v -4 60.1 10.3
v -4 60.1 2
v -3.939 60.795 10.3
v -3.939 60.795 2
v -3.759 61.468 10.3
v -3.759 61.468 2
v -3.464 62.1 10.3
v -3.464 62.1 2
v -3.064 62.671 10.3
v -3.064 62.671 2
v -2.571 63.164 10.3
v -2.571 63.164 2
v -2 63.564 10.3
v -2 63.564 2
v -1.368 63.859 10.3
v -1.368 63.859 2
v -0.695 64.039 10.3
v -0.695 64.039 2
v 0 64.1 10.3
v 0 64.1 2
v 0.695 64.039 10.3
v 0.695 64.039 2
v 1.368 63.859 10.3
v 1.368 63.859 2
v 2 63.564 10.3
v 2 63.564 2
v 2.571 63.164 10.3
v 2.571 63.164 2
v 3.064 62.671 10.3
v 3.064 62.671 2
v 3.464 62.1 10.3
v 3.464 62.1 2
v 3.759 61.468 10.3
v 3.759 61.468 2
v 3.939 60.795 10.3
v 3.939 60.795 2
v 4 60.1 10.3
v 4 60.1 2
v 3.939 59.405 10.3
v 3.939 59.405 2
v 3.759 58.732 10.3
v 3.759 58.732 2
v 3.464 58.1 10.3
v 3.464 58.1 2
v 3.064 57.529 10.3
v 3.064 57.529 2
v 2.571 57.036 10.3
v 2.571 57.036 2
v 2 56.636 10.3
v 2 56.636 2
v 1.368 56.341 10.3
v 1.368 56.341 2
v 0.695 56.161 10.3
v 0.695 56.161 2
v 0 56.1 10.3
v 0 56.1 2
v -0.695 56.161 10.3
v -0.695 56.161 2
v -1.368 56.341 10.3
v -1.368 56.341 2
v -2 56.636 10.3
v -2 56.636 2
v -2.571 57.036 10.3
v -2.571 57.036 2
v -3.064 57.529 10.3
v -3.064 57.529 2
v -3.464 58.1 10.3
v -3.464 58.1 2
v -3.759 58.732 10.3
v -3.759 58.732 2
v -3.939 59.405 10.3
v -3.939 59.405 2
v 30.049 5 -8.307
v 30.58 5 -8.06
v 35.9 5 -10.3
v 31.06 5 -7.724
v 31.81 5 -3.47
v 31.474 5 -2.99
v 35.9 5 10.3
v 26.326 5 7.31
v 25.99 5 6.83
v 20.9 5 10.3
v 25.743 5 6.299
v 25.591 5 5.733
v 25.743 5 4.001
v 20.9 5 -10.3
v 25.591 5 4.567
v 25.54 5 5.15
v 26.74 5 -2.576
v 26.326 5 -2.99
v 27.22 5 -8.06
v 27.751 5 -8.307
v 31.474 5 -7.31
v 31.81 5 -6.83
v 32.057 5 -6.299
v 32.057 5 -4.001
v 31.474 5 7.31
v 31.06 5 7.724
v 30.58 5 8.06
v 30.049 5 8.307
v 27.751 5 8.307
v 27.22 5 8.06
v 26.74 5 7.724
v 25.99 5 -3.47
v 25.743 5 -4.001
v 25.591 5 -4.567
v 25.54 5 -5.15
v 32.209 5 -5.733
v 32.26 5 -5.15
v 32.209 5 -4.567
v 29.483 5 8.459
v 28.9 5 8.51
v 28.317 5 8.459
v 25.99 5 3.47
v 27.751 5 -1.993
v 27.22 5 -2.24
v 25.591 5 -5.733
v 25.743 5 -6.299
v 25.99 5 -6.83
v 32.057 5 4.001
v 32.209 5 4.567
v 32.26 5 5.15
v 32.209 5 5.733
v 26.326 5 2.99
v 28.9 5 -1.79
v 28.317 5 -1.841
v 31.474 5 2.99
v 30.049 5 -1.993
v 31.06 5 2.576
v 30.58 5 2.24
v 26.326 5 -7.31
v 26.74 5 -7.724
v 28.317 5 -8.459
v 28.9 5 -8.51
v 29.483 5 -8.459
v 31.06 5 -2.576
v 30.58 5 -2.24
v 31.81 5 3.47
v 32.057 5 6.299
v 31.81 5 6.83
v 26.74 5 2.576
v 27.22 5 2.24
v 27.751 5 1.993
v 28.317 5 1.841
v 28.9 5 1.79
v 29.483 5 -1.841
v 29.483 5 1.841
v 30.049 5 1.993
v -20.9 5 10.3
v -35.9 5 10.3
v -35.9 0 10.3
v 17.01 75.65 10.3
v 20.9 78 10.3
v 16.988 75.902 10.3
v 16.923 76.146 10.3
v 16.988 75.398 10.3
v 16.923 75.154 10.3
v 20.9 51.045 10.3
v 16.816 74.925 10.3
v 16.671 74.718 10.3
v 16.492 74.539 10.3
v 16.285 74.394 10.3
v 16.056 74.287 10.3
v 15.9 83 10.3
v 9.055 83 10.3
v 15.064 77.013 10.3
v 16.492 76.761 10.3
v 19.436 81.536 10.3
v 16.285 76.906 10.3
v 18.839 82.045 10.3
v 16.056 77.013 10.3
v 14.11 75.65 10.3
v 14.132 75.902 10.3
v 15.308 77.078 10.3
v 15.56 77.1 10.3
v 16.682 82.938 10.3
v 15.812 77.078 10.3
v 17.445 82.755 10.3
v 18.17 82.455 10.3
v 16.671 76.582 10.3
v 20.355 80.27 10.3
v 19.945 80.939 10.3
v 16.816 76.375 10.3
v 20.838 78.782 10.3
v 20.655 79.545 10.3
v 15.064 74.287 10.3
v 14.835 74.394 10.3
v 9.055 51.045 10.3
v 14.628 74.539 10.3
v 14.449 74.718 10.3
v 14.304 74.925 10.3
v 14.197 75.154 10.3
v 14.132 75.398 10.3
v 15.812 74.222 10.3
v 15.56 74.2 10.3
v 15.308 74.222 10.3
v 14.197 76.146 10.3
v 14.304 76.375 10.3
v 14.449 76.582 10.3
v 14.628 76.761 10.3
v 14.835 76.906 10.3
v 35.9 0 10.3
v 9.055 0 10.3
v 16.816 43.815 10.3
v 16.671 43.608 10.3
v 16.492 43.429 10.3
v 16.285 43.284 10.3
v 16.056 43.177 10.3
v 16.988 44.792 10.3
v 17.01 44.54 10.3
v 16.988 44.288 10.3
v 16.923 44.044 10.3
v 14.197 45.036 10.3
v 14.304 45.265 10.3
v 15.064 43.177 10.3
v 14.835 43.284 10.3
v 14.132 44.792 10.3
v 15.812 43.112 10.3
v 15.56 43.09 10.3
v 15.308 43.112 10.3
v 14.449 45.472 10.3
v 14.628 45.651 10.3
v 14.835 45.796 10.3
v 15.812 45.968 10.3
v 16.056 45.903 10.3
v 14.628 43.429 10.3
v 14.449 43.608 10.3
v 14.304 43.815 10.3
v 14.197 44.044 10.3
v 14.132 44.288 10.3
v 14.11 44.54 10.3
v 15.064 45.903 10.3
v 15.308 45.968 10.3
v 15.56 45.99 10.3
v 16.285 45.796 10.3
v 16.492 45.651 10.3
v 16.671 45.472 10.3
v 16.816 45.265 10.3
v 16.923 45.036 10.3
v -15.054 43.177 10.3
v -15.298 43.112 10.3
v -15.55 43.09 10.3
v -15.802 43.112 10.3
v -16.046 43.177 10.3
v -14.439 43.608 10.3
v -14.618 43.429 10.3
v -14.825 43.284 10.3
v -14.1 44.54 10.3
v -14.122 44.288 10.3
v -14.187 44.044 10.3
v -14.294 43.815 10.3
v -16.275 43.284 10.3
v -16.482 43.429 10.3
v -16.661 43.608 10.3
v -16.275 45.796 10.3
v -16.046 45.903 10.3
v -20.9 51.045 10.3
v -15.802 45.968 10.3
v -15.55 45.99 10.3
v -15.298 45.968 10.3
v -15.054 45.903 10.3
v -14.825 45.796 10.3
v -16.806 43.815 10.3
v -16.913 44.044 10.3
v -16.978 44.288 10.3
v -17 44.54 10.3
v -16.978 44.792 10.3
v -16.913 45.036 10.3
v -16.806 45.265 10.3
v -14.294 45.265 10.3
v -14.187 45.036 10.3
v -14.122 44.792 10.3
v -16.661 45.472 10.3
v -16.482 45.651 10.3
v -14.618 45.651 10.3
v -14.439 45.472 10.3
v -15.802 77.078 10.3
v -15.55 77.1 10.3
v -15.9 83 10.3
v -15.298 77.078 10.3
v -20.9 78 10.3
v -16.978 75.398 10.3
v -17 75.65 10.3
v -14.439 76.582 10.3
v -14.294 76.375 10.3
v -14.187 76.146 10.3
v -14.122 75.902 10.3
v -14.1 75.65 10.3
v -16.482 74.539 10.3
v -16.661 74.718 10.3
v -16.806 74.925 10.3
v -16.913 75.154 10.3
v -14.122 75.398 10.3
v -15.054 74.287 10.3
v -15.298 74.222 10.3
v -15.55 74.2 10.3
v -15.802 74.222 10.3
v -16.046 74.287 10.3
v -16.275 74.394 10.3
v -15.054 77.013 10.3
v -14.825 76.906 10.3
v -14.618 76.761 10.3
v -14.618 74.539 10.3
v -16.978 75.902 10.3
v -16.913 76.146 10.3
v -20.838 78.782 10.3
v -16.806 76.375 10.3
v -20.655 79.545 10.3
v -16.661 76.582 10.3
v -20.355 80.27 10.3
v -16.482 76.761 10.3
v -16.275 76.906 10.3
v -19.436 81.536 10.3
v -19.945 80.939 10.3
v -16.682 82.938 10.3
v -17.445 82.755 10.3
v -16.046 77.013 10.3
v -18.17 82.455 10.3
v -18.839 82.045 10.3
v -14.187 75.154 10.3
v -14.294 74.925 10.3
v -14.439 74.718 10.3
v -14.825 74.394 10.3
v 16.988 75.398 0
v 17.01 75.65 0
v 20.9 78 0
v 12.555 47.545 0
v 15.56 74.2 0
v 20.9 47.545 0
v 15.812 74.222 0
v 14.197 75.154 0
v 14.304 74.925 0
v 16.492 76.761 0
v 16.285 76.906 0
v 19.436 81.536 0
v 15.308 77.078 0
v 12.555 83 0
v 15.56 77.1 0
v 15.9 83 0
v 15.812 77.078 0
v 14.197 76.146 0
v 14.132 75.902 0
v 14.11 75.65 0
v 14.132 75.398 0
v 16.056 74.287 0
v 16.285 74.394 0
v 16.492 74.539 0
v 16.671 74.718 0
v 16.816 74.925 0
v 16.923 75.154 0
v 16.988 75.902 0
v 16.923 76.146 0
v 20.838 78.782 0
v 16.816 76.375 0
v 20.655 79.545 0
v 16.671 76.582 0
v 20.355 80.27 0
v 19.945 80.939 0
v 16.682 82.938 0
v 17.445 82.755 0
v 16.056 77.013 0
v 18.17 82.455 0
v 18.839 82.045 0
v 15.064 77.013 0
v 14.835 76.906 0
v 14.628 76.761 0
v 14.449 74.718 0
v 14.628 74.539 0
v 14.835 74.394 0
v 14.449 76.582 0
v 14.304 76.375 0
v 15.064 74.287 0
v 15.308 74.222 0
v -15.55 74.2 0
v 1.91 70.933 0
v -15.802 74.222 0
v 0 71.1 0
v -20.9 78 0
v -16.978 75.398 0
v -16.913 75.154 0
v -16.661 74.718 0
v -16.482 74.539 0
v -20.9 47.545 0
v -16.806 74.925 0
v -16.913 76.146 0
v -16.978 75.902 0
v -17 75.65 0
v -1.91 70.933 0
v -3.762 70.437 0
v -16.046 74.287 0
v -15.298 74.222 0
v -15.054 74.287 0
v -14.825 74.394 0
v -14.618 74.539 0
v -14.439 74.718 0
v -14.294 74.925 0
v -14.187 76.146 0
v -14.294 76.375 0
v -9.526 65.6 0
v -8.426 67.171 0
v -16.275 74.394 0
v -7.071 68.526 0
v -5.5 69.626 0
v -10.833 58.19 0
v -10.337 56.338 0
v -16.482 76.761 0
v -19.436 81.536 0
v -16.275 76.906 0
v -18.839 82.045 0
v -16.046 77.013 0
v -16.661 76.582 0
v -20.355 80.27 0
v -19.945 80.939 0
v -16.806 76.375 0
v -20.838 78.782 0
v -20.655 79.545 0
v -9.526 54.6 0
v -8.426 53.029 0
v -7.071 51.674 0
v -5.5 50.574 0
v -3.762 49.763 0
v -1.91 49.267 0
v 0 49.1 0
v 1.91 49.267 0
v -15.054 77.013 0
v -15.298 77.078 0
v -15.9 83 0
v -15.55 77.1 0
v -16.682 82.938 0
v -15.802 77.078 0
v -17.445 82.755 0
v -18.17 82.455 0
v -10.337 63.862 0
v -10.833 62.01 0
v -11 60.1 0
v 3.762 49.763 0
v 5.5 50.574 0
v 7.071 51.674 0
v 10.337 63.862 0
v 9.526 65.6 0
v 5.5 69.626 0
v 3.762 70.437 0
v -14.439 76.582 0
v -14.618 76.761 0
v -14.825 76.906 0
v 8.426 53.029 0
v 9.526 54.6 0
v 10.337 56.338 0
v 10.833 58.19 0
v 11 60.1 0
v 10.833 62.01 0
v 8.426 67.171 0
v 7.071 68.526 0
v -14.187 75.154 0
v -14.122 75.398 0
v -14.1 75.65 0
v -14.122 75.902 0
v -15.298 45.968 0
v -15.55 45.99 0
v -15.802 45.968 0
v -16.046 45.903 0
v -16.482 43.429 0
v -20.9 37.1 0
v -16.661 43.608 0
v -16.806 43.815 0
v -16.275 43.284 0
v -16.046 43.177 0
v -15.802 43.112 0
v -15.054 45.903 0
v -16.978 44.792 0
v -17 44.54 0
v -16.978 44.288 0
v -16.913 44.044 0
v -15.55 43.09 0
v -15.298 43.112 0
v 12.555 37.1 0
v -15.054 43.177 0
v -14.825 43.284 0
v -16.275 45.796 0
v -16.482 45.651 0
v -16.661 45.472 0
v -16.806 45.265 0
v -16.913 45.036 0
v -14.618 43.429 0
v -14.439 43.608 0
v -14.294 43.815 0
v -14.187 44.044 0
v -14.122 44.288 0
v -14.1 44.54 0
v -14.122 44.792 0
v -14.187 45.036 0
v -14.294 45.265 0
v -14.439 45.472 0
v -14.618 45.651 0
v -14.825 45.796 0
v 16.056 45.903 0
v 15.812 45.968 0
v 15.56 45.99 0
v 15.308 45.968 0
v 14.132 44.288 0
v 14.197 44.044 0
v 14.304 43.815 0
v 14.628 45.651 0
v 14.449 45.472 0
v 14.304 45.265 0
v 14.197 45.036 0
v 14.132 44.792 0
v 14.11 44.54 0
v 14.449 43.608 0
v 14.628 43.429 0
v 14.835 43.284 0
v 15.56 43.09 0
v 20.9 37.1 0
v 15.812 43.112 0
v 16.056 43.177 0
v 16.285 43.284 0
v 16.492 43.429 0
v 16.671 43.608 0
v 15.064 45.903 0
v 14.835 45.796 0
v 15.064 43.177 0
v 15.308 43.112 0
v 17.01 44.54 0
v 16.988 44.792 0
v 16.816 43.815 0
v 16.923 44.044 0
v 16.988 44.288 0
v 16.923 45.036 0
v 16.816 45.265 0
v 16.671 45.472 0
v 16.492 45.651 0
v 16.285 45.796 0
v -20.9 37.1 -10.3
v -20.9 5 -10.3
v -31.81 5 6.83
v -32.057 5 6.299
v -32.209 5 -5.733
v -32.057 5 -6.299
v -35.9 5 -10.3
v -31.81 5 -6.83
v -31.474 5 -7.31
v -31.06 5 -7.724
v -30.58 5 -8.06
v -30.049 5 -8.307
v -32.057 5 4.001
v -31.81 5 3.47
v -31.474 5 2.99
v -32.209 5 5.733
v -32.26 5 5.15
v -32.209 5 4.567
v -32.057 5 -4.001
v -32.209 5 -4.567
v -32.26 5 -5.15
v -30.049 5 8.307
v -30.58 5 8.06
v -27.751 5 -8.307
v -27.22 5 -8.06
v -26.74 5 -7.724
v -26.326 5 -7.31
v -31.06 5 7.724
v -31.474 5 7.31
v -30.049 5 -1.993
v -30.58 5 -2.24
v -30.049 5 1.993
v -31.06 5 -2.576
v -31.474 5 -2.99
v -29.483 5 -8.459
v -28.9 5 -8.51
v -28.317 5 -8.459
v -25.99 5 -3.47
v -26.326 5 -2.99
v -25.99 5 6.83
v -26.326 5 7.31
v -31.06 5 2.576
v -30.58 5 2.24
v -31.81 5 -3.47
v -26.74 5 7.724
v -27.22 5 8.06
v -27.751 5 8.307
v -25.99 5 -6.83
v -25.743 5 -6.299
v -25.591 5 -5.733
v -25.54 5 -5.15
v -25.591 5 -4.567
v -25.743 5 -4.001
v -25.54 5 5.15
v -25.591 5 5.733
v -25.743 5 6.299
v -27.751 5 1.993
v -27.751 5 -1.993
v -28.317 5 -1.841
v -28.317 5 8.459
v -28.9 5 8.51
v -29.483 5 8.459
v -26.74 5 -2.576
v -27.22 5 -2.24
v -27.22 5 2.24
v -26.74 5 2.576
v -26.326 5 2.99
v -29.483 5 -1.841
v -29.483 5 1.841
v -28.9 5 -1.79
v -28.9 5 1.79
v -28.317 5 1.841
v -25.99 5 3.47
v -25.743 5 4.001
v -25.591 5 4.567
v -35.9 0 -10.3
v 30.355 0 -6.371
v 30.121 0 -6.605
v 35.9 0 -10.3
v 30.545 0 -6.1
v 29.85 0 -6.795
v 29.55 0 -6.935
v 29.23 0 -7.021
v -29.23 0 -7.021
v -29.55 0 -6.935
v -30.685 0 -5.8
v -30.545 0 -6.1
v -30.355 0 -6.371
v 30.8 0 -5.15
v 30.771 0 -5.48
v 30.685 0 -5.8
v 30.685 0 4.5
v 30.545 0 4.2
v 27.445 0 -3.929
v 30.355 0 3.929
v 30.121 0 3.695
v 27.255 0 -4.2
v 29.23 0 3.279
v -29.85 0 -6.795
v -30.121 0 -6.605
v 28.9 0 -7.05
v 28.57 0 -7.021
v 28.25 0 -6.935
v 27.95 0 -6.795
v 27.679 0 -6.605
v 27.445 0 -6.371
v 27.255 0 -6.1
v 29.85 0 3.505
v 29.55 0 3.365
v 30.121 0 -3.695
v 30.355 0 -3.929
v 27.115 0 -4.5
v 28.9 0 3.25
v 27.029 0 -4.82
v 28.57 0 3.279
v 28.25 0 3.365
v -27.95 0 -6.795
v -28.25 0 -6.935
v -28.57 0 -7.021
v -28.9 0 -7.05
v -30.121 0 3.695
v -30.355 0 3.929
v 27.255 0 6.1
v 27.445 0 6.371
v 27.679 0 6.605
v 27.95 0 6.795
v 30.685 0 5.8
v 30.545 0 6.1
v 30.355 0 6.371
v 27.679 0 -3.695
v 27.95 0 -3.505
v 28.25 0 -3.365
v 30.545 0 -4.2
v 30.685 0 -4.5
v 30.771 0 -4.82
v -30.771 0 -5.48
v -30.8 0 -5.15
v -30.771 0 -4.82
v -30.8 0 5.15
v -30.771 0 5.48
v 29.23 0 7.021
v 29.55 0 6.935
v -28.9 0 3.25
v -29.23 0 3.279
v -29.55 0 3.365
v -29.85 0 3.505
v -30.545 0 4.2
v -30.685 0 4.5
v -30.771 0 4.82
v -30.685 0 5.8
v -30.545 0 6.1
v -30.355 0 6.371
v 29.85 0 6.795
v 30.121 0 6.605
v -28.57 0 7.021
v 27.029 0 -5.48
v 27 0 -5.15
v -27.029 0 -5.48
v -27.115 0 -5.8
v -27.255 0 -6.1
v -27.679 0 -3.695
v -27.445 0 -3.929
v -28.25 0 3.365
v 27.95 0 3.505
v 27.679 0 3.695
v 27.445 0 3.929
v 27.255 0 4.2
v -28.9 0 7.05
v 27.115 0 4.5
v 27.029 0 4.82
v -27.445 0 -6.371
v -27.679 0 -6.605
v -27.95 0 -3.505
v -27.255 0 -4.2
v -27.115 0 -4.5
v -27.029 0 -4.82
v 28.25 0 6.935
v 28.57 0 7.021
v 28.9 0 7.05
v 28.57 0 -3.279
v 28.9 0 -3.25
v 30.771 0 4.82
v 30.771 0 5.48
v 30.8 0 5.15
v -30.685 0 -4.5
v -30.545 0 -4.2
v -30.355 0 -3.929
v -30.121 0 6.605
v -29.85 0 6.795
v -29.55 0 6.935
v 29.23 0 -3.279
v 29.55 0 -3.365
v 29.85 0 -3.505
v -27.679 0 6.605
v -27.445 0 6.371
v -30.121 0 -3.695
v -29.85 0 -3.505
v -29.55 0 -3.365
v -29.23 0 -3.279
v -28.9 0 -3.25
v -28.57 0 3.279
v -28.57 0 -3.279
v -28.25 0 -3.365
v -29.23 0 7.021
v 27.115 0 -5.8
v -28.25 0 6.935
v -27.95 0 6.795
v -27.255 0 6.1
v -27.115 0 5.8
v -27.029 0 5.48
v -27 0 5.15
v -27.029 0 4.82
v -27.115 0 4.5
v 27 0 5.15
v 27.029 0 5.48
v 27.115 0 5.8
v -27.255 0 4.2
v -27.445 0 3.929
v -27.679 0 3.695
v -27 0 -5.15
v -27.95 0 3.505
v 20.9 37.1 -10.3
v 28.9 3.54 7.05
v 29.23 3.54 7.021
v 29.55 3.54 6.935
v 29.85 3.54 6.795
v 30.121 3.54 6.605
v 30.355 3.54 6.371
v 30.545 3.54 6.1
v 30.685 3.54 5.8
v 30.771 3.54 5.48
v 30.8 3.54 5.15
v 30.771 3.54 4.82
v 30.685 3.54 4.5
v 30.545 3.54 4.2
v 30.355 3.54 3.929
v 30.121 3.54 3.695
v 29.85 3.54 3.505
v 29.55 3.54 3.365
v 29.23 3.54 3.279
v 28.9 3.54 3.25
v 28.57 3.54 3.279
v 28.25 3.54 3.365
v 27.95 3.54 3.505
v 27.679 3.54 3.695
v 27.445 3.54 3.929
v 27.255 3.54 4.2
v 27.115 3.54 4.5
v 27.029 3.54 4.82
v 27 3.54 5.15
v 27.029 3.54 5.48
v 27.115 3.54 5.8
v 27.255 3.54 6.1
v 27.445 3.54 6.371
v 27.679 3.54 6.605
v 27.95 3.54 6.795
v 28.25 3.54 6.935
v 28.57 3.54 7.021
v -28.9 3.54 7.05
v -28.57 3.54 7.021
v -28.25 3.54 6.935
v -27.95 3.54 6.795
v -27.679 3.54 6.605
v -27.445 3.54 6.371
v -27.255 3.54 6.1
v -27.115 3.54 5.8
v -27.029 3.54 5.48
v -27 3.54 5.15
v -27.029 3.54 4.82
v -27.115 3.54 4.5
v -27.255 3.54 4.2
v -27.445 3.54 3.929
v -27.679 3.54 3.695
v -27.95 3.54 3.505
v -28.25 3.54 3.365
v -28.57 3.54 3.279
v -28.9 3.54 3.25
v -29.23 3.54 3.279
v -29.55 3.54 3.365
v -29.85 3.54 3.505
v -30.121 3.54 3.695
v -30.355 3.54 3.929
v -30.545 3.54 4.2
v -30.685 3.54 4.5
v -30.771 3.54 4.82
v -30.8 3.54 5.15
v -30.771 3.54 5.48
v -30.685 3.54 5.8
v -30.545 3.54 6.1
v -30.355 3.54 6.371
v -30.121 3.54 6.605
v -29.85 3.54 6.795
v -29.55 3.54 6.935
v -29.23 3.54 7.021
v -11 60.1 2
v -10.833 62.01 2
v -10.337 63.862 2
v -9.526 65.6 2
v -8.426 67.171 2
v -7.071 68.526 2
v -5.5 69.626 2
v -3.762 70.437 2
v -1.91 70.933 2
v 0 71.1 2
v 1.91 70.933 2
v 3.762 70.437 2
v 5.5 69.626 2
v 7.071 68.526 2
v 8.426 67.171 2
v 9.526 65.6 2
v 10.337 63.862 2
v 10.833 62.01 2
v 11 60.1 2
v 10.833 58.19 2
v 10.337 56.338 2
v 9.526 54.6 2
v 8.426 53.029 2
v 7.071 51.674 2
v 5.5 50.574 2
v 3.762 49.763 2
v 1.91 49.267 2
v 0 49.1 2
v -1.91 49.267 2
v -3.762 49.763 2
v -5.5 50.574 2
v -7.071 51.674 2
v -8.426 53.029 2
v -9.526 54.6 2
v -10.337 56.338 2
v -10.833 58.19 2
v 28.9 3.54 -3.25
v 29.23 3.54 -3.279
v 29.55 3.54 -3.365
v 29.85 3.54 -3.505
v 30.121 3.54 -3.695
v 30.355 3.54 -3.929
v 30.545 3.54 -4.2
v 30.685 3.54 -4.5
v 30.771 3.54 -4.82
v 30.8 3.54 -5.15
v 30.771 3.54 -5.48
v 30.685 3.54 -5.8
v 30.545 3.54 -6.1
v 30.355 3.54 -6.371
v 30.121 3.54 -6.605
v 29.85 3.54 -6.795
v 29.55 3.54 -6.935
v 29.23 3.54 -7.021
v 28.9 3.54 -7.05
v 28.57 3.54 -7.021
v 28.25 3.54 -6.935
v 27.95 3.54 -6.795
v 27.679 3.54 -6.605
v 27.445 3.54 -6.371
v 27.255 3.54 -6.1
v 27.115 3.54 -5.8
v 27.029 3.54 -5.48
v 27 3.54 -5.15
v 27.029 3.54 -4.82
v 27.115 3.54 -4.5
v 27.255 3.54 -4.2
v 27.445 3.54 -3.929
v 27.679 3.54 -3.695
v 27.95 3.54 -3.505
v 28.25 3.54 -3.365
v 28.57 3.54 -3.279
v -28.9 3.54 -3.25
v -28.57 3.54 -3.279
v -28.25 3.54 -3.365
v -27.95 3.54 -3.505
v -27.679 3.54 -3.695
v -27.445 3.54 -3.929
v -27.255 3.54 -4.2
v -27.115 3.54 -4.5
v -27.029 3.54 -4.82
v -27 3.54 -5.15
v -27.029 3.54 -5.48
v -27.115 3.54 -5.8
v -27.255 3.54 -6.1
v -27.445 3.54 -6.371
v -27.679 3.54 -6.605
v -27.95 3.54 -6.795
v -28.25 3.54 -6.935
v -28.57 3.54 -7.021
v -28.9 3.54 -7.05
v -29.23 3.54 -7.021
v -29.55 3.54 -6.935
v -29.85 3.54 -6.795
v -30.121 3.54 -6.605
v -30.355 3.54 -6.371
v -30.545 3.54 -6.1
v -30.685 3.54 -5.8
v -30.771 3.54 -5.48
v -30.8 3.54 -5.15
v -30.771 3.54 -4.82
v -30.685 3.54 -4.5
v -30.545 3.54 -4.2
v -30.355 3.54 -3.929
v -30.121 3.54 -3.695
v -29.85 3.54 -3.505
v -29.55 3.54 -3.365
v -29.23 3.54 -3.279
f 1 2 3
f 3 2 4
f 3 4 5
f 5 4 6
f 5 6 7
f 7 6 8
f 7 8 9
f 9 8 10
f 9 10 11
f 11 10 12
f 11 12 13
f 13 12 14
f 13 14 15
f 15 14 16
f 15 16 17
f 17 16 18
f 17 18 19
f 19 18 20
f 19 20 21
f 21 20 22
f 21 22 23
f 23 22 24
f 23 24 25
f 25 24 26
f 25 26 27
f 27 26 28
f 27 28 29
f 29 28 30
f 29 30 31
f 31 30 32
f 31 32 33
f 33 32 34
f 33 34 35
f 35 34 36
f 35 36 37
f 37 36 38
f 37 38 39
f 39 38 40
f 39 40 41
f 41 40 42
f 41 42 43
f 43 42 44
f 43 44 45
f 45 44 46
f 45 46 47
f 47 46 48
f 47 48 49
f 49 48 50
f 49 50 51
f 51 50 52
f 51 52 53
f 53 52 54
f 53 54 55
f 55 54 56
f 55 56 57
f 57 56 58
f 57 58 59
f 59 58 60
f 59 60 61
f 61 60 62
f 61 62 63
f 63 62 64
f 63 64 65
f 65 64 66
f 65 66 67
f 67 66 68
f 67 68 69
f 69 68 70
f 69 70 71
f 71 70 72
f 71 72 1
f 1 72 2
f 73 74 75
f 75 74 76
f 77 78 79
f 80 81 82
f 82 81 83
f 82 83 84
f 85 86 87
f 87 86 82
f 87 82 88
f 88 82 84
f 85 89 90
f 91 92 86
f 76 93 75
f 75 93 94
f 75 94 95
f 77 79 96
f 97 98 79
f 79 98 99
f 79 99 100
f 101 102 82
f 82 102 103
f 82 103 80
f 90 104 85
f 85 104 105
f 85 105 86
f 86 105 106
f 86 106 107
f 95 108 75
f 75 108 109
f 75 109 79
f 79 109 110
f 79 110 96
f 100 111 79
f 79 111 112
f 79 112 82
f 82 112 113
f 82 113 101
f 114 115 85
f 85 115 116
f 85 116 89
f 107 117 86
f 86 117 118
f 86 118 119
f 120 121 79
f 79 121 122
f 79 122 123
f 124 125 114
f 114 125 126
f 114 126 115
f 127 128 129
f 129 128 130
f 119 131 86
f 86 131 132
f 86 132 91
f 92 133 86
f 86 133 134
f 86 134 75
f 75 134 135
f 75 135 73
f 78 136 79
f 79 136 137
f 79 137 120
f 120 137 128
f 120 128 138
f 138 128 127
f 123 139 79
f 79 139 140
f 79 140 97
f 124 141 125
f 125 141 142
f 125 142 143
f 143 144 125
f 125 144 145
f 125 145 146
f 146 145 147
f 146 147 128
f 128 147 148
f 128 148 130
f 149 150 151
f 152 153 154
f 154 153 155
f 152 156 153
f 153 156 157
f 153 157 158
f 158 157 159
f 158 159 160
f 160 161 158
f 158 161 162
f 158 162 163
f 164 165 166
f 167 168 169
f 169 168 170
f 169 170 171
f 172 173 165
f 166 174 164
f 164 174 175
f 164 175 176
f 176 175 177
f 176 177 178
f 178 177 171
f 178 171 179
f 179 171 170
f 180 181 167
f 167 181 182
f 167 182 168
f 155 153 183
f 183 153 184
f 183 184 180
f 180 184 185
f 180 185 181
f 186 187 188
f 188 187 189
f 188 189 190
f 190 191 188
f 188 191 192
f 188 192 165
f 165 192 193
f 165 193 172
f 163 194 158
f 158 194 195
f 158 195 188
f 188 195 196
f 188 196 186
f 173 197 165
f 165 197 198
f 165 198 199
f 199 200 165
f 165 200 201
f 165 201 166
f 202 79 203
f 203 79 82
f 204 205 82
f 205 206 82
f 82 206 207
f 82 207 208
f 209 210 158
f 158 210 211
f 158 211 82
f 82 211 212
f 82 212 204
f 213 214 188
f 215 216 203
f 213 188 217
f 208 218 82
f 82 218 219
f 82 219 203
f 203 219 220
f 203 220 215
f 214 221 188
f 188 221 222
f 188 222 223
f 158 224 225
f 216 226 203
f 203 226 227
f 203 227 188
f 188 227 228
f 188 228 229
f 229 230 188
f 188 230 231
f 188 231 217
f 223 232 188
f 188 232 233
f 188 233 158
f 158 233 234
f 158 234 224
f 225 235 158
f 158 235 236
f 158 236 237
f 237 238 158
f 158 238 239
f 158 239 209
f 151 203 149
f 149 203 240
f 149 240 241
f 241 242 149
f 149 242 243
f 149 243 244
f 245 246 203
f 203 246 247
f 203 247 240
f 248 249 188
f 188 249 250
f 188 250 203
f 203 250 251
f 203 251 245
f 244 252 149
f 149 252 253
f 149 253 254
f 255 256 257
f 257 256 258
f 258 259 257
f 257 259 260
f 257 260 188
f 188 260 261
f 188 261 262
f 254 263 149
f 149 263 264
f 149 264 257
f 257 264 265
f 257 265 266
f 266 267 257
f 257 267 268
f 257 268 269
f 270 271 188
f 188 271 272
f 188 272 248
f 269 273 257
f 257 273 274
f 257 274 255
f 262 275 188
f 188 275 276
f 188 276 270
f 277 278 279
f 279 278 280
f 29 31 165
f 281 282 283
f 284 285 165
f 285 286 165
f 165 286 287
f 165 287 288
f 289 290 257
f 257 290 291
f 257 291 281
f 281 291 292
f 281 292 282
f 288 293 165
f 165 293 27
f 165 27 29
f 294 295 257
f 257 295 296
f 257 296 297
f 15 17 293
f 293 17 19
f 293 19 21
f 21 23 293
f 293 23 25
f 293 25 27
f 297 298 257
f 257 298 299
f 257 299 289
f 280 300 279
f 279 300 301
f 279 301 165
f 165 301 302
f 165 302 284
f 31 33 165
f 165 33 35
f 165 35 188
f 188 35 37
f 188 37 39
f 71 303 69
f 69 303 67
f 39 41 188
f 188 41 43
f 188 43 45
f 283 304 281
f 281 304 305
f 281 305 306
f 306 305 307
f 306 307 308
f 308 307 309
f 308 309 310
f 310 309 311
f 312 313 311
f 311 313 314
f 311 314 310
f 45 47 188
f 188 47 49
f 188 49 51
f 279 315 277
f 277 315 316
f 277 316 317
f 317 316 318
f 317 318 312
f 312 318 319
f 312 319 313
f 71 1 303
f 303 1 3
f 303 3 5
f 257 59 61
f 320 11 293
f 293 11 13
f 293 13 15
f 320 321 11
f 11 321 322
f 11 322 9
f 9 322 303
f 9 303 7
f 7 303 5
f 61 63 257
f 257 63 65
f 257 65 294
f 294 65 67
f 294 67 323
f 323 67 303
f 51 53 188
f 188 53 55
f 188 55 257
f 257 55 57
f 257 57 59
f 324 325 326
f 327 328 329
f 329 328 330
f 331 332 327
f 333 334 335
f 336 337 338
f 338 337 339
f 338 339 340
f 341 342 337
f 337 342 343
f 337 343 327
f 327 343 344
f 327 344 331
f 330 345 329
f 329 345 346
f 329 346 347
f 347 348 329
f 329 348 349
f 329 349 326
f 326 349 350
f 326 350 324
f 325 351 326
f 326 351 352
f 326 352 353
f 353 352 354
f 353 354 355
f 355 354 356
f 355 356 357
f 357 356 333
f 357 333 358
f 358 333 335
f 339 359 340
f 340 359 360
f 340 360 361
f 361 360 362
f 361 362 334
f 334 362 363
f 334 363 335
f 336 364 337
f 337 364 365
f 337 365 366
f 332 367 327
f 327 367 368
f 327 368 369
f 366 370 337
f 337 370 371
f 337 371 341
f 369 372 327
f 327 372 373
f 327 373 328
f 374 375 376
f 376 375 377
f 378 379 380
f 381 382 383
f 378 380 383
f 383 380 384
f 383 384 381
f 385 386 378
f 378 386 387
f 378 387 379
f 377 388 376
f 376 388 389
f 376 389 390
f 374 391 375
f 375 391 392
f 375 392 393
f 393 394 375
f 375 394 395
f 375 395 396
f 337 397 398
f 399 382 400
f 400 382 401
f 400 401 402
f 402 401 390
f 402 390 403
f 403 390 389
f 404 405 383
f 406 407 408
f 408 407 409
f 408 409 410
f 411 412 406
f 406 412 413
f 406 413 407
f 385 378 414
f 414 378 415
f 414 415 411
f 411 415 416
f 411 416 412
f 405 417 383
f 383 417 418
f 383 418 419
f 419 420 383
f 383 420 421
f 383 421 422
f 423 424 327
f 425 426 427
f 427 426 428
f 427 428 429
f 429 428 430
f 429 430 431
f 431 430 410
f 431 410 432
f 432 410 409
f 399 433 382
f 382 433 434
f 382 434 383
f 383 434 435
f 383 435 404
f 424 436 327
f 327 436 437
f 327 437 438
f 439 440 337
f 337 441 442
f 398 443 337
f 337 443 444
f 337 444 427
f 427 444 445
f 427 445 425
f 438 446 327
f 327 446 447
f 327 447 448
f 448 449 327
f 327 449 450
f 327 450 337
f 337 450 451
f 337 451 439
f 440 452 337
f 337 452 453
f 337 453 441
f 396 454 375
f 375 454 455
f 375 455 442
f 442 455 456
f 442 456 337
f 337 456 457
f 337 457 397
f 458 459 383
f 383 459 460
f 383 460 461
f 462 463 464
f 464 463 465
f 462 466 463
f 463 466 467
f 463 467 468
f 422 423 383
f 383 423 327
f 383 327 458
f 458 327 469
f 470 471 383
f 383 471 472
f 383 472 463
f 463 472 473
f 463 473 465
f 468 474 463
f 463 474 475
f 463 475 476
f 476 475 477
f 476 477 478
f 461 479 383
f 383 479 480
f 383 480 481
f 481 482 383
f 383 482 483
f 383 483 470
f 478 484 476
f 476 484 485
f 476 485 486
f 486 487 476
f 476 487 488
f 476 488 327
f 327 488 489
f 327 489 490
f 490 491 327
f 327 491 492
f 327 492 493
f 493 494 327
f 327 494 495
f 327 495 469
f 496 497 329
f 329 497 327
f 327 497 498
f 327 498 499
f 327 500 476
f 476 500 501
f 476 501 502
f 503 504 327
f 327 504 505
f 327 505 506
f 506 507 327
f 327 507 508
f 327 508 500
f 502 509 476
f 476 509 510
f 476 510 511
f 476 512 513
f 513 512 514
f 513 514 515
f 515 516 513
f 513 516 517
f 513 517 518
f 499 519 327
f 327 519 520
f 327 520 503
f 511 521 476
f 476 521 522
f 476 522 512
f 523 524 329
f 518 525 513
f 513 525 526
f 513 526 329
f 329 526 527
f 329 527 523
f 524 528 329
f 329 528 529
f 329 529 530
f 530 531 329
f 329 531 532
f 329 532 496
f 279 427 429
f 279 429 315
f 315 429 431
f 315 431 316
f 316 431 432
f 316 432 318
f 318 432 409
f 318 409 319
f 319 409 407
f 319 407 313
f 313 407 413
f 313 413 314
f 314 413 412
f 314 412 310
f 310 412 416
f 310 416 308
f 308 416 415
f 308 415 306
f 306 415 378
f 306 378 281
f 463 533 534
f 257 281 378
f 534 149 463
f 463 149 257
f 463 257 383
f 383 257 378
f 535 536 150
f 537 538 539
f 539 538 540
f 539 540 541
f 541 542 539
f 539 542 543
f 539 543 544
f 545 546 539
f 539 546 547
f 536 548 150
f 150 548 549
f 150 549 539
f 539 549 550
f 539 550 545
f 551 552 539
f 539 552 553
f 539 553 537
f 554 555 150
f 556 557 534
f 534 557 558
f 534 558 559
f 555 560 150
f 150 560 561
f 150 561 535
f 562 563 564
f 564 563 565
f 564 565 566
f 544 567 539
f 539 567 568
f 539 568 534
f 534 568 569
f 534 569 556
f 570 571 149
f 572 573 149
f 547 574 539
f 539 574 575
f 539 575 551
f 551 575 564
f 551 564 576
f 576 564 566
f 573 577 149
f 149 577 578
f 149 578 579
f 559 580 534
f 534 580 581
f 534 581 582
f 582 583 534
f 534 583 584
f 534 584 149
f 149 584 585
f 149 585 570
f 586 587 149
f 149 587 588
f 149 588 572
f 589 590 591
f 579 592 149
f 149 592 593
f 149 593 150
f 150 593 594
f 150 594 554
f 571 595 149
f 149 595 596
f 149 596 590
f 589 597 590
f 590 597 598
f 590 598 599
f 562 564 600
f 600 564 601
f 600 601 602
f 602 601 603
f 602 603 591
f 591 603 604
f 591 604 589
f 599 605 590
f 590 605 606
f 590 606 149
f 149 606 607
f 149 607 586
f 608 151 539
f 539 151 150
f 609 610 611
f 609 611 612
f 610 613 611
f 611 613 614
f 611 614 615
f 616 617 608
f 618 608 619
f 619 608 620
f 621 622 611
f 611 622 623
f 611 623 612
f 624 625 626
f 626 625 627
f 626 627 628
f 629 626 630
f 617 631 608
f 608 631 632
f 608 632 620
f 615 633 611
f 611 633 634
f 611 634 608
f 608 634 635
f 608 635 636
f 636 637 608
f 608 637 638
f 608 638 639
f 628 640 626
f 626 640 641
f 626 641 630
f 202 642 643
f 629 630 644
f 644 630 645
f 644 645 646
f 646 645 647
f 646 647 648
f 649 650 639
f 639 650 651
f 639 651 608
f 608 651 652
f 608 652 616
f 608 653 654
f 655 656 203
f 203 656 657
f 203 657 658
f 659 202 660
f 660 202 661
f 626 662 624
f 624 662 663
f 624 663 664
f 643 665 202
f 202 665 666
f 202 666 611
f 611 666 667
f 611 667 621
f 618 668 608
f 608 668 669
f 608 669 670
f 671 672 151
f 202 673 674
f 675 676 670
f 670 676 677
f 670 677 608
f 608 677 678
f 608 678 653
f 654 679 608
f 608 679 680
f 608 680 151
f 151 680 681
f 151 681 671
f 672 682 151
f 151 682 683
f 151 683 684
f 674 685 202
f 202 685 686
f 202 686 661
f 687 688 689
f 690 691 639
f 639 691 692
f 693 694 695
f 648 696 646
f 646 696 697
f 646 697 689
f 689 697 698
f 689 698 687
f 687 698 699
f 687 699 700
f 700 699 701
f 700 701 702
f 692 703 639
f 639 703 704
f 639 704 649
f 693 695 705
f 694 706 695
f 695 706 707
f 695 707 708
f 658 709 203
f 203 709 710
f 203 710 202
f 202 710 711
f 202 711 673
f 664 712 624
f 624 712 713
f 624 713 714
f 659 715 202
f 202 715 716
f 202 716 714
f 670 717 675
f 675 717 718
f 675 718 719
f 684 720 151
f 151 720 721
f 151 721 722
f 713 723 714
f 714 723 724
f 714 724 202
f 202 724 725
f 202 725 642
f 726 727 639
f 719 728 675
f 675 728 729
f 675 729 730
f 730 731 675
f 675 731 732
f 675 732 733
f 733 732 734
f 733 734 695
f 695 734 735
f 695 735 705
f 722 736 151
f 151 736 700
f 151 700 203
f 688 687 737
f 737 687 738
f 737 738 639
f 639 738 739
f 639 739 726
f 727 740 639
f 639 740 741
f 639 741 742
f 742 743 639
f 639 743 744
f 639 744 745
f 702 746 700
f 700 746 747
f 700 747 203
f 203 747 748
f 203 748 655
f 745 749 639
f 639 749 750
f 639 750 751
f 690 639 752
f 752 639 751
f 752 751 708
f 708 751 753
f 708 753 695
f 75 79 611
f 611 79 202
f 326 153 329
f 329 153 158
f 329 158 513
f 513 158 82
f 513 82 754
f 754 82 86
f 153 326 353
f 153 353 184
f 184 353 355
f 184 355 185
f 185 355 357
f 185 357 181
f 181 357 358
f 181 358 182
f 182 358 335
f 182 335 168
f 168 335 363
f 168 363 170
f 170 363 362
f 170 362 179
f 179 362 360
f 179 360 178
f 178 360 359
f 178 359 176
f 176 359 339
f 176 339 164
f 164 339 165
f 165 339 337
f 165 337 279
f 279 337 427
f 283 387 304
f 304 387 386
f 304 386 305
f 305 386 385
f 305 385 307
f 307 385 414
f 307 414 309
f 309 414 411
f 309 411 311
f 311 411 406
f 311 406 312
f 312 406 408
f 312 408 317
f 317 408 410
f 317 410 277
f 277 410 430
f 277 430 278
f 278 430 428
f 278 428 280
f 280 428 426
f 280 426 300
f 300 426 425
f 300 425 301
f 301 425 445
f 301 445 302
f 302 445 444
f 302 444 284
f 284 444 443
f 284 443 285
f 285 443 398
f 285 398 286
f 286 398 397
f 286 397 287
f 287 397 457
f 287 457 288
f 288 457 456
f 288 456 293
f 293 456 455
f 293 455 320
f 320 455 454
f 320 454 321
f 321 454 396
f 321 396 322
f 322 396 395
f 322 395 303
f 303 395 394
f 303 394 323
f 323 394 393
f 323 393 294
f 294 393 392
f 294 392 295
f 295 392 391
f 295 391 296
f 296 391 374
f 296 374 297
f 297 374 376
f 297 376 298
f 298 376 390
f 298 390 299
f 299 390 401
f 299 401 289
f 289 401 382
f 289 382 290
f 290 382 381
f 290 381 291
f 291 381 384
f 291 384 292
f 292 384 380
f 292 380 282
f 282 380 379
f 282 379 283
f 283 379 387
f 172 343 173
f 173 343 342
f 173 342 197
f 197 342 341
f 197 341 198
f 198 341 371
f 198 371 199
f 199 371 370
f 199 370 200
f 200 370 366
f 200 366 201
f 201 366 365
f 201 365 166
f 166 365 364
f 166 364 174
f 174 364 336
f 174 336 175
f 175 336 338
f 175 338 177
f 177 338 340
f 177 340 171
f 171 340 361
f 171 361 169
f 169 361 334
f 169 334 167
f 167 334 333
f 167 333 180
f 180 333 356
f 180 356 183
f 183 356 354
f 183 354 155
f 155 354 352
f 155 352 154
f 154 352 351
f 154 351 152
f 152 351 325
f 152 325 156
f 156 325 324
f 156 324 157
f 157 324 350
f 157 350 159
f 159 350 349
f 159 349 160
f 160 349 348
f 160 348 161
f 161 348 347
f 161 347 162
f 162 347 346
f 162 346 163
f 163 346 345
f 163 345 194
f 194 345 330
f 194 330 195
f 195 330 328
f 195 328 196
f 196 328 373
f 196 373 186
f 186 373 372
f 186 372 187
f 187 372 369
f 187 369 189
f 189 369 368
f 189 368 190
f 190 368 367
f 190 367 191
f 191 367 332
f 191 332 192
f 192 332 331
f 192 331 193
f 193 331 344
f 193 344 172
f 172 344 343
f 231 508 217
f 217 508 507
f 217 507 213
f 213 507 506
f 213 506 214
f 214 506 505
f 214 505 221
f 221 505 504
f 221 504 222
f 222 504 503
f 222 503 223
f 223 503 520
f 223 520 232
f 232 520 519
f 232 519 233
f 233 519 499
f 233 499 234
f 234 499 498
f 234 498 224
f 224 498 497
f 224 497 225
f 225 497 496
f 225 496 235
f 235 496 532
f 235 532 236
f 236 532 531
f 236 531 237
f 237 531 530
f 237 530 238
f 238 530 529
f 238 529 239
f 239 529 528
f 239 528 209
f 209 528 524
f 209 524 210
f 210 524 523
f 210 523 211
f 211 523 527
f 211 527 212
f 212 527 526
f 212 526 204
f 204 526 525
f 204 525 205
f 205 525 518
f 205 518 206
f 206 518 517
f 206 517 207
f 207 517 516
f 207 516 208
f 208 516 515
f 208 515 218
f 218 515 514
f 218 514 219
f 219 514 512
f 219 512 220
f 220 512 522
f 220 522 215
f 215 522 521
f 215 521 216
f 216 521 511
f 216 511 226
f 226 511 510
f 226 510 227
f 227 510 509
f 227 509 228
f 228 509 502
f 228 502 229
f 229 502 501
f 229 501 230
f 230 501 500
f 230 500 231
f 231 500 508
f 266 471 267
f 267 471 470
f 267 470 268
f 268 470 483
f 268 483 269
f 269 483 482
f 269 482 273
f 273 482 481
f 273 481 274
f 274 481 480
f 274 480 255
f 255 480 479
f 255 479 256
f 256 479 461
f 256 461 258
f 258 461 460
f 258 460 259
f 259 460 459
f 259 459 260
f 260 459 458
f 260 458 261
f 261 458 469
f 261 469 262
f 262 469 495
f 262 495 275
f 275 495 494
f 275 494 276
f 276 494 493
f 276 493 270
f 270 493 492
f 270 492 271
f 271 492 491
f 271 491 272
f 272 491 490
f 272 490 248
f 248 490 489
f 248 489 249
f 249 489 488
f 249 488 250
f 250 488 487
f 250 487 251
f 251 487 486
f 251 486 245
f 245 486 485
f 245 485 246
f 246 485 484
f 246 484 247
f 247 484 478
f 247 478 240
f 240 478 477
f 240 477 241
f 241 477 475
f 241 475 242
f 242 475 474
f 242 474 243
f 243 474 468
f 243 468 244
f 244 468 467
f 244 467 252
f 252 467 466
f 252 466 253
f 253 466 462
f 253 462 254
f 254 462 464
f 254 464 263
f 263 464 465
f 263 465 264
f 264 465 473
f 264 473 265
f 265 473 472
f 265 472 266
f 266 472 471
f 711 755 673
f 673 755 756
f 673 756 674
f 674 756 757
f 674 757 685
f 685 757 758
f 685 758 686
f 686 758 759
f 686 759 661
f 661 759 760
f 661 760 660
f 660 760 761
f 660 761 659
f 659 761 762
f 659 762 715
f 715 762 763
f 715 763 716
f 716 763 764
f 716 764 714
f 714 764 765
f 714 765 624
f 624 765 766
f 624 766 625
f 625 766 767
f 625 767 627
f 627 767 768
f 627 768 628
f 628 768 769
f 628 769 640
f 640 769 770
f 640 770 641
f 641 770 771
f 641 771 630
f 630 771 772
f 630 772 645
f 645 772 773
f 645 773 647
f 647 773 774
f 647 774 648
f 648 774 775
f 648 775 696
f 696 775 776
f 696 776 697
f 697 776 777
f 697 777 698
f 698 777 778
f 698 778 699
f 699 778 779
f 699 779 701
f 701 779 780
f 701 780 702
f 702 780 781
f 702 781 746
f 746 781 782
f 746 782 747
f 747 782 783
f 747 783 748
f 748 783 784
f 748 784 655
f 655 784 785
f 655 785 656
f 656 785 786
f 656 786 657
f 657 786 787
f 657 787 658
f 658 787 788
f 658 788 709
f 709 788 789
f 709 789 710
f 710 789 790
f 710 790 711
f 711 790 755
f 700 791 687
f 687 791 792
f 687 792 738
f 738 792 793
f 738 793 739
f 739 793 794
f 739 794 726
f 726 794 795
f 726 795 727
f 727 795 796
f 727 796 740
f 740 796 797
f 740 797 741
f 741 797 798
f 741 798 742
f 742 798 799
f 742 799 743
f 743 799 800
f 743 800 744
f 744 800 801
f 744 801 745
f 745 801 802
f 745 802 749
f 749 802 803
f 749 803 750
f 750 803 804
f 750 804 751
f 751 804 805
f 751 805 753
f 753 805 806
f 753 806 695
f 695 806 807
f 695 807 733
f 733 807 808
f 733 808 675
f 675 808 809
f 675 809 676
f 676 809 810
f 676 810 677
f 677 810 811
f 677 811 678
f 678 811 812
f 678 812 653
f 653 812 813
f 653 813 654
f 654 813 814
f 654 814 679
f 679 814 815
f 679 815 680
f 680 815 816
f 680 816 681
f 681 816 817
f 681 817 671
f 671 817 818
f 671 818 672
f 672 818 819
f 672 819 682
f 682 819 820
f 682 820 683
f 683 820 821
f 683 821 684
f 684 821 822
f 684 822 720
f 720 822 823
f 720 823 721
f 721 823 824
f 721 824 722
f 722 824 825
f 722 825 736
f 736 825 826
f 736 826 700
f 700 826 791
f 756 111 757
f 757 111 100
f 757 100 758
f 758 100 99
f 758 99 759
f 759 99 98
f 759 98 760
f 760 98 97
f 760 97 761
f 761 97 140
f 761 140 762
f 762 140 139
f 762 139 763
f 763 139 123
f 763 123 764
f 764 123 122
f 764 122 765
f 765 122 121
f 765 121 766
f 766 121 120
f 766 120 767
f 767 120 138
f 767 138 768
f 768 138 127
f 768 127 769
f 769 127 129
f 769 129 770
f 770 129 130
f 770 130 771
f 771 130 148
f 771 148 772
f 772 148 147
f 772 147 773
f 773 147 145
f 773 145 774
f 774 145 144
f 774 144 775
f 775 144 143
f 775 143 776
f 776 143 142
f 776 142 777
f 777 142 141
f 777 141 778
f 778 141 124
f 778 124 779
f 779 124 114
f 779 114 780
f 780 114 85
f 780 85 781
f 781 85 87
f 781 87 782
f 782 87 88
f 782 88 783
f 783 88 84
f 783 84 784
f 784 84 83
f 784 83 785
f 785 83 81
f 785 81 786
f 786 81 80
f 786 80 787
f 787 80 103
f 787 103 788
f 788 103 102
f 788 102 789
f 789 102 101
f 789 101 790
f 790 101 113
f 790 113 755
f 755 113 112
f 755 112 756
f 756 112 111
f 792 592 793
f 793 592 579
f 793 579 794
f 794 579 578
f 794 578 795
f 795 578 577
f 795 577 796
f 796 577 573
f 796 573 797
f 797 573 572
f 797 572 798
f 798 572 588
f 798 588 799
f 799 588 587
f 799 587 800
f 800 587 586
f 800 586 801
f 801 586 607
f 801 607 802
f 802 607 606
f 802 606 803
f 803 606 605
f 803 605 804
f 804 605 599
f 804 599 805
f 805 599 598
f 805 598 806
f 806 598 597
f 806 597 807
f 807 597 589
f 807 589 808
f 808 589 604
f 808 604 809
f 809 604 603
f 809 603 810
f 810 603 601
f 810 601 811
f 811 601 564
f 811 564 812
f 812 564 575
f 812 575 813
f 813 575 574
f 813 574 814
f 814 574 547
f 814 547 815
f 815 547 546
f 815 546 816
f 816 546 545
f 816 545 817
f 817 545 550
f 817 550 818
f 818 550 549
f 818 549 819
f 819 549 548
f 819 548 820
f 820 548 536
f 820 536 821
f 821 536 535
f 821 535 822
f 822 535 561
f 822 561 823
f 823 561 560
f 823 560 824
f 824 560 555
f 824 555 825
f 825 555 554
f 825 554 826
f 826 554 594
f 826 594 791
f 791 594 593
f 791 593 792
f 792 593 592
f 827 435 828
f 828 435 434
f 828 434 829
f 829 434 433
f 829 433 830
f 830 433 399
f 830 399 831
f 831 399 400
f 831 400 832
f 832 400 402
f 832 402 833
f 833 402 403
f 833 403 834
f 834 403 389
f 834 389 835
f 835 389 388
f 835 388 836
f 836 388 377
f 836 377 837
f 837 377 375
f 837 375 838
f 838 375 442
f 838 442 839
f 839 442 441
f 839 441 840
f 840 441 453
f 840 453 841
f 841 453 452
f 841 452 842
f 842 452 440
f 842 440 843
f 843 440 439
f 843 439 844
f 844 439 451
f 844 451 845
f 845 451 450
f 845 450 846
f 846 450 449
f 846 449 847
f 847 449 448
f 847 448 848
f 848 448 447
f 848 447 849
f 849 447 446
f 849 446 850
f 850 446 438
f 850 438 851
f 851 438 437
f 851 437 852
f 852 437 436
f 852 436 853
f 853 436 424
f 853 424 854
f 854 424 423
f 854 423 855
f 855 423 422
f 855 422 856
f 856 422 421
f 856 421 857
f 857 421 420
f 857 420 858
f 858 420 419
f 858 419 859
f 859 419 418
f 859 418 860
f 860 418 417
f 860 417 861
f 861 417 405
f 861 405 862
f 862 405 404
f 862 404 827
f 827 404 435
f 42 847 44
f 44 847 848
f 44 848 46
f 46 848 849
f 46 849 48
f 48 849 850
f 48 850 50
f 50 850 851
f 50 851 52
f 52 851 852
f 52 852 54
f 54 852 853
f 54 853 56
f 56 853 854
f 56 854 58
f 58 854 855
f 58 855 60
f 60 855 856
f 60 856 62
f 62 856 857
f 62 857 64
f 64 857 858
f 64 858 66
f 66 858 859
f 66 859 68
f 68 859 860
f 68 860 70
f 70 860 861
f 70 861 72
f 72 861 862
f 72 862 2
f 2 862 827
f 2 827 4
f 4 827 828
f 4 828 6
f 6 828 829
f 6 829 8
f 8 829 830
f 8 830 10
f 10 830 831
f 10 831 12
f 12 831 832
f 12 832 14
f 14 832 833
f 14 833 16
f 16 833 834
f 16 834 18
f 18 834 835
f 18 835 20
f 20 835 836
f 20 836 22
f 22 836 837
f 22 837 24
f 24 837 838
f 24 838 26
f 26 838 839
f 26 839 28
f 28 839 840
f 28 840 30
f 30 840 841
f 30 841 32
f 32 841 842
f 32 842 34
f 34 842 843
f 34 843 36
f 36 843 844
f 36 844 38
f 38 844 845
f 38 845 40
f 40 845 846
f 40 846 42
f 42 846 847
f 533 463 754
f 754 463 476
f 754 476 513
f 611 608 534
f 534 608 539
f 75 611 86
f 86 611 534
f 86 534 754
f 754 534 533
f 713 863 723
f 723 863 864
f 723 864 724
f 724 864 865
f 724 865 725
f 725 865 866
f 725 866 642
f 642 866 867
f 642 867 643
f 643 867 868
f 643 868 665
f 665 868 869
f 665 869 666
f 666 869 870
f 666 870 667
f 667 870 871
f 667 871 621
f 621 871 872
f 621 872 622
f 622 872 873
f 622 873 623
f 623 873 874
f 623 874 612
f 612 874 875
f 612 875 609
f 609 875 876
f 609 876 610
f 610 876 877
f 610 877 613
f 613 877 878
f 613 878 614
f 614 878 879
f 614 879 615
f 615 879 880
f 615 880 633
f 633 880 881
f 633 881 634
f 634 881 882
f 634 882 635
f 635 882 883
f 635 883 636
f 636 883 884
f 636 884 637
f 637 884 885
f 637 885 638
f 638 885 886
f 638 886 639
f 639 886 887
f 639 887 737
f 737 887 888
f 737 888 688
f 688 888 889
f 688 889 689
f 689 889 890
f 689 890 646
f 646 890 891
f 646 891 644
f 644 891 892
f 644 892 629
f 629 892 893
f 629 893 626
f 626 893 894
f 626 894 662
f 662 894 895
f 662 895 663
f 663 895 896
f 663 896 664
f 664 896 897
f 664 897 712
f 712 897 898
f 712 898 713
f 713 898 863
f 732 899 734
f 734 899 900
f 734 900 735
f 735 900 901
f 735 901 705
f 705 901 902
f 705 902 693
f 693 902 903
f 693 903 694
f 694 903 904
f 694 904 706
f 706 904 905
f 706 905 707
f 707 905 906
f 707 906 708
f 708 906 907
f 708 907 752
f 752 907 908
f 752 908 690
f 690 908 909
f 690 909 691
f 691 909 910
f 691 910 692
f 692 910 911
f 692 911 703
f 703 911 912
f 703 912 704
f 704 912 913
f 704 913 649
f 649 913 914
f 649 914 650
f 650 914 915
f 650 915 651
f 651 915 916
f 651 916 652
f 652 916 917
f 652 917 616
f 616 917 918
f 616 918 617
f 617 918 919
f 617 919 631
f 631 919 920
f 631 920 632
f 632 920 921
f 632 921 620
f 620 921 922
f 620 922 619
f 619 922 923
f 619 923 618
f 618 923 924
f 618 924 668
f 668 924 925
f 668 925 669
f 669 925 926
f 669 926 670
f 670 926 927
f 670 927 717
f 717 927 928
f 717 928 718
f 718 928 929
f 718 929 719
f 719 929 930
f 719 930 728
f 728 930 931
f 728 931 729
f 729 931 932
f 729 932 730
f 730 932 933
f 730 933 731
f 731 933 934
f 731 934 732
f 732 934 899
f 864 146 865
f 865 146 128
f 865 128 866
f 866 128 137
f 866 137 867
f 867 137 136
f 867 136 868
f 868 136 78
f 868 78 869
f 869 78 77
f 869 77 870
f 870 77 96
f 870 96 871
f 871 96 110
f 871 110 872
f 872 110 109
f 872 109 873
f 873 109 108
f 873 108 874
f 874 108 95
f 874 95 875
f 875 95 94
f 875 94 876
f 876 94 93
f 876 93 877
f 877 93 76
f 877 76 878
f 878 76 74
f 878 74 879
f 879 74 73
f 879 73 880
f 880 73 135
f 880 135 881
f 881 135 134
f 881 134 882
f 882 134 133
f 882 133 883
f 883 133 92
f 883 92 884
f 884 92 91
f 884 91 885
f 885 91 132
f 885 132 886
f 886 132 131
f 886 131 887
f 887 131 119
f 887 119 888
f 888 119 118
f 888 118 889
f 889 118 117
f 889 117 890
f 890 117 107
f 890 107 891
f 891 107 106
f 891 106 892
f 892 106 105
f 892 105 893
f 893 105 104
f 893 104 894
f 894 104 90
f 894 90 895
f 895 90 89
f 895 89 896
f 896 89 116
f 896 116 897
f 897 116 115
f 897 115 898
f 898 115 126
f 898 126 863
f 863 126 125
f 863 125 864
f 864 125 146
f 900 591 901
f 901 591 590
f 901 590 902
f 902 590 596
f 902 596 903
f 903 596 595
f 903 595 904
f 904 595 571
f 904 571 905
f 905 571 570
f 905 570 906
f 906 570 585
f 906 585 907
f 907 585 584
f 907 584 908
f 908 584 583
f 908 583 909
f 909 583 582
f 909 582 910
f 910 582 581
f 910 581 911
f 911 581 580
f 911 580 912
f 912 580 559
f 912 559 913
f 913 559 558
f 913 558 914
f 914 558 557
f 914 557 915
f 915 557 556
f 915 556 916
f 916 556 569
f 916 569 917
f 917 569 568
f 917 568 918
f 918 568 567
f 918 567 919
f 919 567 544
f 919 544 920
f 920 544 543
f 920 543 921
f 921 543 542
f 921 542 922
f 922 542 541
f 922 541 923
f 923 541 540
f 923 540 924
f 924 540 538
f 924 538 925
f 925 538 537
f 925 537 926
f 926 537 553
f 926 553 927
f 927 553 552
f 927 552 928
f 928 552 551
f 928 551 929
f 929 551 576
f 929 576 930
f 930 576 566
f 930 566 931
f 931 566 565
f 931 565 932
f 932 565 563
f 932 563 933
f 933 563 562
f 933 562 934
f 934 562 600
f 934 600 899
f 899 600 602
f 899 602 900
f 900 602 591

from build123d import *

# Parameters (mm, degrees)
IZIM1_R                                            = 4
IZIM1_R_2                                          = 1.45
Y_KSEKLIK_EKSTR_ZYON1_DEPTH                        = 10.3
IZIM2_R                                            = 1.9
KES_EKSTR_ZYON1_DEPTH                              = 10.3
M3_ALT_GEN_ALYAN_HAV_A_BA_L_K_R_VIDA_I_D           = 3.6
M3_ALT_GEN_ALYAN_HAV_A_BA_L_K_R_VIDA_I_CSINK_D     = 6.72
M3_ALT_GEN_ALYAN_HAV_A_BA_L_K_R_VIDA_I_CSINK_ANGLE = 90
IZIM4_R                                            = 11
KES_EKSTR_ZYON2_DEPTH                              = 2
Y_KSEKLIK_EKSTR_ZYON2_DEPTH                        = 10.3
IZIM6_R                                            = 1.9
KES_EKSTR_ZYON3_DEPTH                              = 10.3
M3_ALT_GEN_ALYAN_HAV_A_BA_L_K_R_VID_2_D            = 3.6
M3_ALT_GEN_ALYAN_HAV_A_BA_L_K_R_VID_2_CSINK_D      = 6.72
M3_ALT_GEN_ALYAN_HAV_A_BA_L_K_R_VID_2_CSINK_ANGLE  = 90


with BuildPart() as part:
    # Çizim1 → Yükseklik-Ekstrüzyon1 (new body)
    with BuildSketch(Plane.XY):
        with BuildLine():
            Line((-35.9, 0), (35.9, 0))
            Line((35.9, 0), (35.9, 5))
            Line((35.9, 5), (20.9, 5))
            Line((20.9, 5), (20.9, 78))
            ThreePointArc((20.9, 78), (19.435533906, 81.535533906), (15.9, 83))
            Line((15.9, 83), (-15.9, 83))
            ThreePointArc((-15.9, 83), (-19.435533906, 81.535533906), (-20.9, 78))
            Line((-20.9, 78), (-20.9, 5))
            Line((-20.9, 5), (-35.9, 5))
            Line((-35.9, 5), (-35.9, 0))
        make_face()
        with Locations(Location((0, 60.1, 0), (0, 0, 180))):
            Circle(IZIM1_R, mode=Mode.SUBTRACT)
        with Locations(Location((-15.55, 75.65, 0), (0, 0, 180))):
            Circle(IZIM1_R_2, mode=Mode.SUBTRACT)
        with Locations(Location((15.56, 75.65, 0), (0, 0, 180))):
            Circle(IZIM1_R_2, mode=Mode.SUBTRACT)
        with Locations(Location((15.56, 44.54, 0), (0, 0, 180))):
            Circle(IZIM1_R_2, mode=Mode.SUBTRACT)
        with Locations(Location((-15.55, 44.54, 0), (0, 0, 180))):
            Circle(IZIM1_R_2, mode=Mode.SUBTRACT)
    extrude(amount=Y_KSEKLIK_EKSTR_ZYON1_DEPTH)

    # Çizim2 → Kes-Ekstrüzyon1 (cut)
    with BuildSketch(Plane(origin=(0, 5, 0), x_dir=(1, 0, 0), z_dir=(0, 1, 0))):
        with Locations(Location((28.9, -5.15, 0), (0, 0, 270))):
            Circle(IZIM2_R)
        with Locations(Location((-28.9, -5.15, 0), (0, 0, 270))):
            Circle(IZIM2_R)
    extrude(amount=-KES_EKSTR_ZYON1_DEPTH, mode=Mode.SUBTRACT)

    # M3 Alt_gen Alyan Hav_a Ba_l_ K_r Vida _i (through all)
    with Locations(Plane(origin=(-28.9, 5, 5.15), x_dir=(0, 0, 1), z_dir=(0, 1, 0))):
        with Locations((0, 0), (0, 57.8)):
            CounterSinkHole(M3_ALT_GEN_ALYAN_HAV_A_BA_L_K_R_VIDA_I_D / 2, M3_ALT_GEN_ALYAN_HAV_A_BA_L_K_R_VIDA_I_CSINK_D / 2, counter_sink_angle=M3_ALT_GEN_ALYAN_HAV_A_BA_L_K_R_VIDA_I_CSINK_ANGLE)

    # Çizim4 → Kes-Ekstrüzyon2 (cut)
    with BuildSketch(Plane(origin=(0, 0, 0), x_dir=(-1, 0, 0), z_dir=(0, 0, -1))):
        with Locations((0, 60.1)):
            Circle(IZIM4_R)
    extrude(amount=-KES_EKSTR_ZYON2_DEPTH, mode=Mode.SUBTRACT)

    # Çizim5 → Yükseklik-Ekstrüzyon2 (add)
    with BuildSketch(Plane(origin=(0, 0, 0), x_dir=(-1, 0, 0), z_dir=(0, 0, -1))):
        Polygon((-20.9, 37.1), (20.9, 37.1), (20.9, 5), (35.9, 5), (35.9, 0), (-35.9, 0), (-35.9, 5), (-20.9, 5), align=None)
    extrude(amount=Y_KSEKLIK_EKSTR_ZYON2_DEPTH)

    # Çizim6 → Kes-Ekstrüzyon3 (cut)
    with BuildSketch(Plane(origin=(0, 5, 0), x_dir=(1, 0, 0), z_dir=(0, 1, 0))):
        with Locations(Location((28.9, 5.15, 0), (0, 0, 270))):
            Circle(IZIM6_R)
        with Locations(Location((-28.9, 5.15, 0), (0, 0, 270))):
            Circle(IZIM6_R)
    extrude(amount=-KES_EKSTR_ZYON3_DEPTH, mode=Mode.SUBTRACT)

    # M3 Alt_gen Alyan Hav_a Ba_l_ K_r Vid 2 (through all)
    with Locations(Plane(origin=(-28.9, 5, -5.15), x_dir=(0, 0, 1), z_dir=(0, 1, 0))):
        with Locations((0, 0), (0, 57.8)):
            CounterSinkHole(M3_ALT_GEN_ALYAN_HAV_A_BA_L_K_R_VID_2_D / 2, M3_ALT_GEN_ALYAN_HAV_A_BA_L_K_R_VID_2_CSINK_D / 2, counter_sink_angle=M3_ALT_GEN_ALYAN_HAV_A_BA_L_K_R_VID_2_CSINK_ANGLE)


solid = part.part
